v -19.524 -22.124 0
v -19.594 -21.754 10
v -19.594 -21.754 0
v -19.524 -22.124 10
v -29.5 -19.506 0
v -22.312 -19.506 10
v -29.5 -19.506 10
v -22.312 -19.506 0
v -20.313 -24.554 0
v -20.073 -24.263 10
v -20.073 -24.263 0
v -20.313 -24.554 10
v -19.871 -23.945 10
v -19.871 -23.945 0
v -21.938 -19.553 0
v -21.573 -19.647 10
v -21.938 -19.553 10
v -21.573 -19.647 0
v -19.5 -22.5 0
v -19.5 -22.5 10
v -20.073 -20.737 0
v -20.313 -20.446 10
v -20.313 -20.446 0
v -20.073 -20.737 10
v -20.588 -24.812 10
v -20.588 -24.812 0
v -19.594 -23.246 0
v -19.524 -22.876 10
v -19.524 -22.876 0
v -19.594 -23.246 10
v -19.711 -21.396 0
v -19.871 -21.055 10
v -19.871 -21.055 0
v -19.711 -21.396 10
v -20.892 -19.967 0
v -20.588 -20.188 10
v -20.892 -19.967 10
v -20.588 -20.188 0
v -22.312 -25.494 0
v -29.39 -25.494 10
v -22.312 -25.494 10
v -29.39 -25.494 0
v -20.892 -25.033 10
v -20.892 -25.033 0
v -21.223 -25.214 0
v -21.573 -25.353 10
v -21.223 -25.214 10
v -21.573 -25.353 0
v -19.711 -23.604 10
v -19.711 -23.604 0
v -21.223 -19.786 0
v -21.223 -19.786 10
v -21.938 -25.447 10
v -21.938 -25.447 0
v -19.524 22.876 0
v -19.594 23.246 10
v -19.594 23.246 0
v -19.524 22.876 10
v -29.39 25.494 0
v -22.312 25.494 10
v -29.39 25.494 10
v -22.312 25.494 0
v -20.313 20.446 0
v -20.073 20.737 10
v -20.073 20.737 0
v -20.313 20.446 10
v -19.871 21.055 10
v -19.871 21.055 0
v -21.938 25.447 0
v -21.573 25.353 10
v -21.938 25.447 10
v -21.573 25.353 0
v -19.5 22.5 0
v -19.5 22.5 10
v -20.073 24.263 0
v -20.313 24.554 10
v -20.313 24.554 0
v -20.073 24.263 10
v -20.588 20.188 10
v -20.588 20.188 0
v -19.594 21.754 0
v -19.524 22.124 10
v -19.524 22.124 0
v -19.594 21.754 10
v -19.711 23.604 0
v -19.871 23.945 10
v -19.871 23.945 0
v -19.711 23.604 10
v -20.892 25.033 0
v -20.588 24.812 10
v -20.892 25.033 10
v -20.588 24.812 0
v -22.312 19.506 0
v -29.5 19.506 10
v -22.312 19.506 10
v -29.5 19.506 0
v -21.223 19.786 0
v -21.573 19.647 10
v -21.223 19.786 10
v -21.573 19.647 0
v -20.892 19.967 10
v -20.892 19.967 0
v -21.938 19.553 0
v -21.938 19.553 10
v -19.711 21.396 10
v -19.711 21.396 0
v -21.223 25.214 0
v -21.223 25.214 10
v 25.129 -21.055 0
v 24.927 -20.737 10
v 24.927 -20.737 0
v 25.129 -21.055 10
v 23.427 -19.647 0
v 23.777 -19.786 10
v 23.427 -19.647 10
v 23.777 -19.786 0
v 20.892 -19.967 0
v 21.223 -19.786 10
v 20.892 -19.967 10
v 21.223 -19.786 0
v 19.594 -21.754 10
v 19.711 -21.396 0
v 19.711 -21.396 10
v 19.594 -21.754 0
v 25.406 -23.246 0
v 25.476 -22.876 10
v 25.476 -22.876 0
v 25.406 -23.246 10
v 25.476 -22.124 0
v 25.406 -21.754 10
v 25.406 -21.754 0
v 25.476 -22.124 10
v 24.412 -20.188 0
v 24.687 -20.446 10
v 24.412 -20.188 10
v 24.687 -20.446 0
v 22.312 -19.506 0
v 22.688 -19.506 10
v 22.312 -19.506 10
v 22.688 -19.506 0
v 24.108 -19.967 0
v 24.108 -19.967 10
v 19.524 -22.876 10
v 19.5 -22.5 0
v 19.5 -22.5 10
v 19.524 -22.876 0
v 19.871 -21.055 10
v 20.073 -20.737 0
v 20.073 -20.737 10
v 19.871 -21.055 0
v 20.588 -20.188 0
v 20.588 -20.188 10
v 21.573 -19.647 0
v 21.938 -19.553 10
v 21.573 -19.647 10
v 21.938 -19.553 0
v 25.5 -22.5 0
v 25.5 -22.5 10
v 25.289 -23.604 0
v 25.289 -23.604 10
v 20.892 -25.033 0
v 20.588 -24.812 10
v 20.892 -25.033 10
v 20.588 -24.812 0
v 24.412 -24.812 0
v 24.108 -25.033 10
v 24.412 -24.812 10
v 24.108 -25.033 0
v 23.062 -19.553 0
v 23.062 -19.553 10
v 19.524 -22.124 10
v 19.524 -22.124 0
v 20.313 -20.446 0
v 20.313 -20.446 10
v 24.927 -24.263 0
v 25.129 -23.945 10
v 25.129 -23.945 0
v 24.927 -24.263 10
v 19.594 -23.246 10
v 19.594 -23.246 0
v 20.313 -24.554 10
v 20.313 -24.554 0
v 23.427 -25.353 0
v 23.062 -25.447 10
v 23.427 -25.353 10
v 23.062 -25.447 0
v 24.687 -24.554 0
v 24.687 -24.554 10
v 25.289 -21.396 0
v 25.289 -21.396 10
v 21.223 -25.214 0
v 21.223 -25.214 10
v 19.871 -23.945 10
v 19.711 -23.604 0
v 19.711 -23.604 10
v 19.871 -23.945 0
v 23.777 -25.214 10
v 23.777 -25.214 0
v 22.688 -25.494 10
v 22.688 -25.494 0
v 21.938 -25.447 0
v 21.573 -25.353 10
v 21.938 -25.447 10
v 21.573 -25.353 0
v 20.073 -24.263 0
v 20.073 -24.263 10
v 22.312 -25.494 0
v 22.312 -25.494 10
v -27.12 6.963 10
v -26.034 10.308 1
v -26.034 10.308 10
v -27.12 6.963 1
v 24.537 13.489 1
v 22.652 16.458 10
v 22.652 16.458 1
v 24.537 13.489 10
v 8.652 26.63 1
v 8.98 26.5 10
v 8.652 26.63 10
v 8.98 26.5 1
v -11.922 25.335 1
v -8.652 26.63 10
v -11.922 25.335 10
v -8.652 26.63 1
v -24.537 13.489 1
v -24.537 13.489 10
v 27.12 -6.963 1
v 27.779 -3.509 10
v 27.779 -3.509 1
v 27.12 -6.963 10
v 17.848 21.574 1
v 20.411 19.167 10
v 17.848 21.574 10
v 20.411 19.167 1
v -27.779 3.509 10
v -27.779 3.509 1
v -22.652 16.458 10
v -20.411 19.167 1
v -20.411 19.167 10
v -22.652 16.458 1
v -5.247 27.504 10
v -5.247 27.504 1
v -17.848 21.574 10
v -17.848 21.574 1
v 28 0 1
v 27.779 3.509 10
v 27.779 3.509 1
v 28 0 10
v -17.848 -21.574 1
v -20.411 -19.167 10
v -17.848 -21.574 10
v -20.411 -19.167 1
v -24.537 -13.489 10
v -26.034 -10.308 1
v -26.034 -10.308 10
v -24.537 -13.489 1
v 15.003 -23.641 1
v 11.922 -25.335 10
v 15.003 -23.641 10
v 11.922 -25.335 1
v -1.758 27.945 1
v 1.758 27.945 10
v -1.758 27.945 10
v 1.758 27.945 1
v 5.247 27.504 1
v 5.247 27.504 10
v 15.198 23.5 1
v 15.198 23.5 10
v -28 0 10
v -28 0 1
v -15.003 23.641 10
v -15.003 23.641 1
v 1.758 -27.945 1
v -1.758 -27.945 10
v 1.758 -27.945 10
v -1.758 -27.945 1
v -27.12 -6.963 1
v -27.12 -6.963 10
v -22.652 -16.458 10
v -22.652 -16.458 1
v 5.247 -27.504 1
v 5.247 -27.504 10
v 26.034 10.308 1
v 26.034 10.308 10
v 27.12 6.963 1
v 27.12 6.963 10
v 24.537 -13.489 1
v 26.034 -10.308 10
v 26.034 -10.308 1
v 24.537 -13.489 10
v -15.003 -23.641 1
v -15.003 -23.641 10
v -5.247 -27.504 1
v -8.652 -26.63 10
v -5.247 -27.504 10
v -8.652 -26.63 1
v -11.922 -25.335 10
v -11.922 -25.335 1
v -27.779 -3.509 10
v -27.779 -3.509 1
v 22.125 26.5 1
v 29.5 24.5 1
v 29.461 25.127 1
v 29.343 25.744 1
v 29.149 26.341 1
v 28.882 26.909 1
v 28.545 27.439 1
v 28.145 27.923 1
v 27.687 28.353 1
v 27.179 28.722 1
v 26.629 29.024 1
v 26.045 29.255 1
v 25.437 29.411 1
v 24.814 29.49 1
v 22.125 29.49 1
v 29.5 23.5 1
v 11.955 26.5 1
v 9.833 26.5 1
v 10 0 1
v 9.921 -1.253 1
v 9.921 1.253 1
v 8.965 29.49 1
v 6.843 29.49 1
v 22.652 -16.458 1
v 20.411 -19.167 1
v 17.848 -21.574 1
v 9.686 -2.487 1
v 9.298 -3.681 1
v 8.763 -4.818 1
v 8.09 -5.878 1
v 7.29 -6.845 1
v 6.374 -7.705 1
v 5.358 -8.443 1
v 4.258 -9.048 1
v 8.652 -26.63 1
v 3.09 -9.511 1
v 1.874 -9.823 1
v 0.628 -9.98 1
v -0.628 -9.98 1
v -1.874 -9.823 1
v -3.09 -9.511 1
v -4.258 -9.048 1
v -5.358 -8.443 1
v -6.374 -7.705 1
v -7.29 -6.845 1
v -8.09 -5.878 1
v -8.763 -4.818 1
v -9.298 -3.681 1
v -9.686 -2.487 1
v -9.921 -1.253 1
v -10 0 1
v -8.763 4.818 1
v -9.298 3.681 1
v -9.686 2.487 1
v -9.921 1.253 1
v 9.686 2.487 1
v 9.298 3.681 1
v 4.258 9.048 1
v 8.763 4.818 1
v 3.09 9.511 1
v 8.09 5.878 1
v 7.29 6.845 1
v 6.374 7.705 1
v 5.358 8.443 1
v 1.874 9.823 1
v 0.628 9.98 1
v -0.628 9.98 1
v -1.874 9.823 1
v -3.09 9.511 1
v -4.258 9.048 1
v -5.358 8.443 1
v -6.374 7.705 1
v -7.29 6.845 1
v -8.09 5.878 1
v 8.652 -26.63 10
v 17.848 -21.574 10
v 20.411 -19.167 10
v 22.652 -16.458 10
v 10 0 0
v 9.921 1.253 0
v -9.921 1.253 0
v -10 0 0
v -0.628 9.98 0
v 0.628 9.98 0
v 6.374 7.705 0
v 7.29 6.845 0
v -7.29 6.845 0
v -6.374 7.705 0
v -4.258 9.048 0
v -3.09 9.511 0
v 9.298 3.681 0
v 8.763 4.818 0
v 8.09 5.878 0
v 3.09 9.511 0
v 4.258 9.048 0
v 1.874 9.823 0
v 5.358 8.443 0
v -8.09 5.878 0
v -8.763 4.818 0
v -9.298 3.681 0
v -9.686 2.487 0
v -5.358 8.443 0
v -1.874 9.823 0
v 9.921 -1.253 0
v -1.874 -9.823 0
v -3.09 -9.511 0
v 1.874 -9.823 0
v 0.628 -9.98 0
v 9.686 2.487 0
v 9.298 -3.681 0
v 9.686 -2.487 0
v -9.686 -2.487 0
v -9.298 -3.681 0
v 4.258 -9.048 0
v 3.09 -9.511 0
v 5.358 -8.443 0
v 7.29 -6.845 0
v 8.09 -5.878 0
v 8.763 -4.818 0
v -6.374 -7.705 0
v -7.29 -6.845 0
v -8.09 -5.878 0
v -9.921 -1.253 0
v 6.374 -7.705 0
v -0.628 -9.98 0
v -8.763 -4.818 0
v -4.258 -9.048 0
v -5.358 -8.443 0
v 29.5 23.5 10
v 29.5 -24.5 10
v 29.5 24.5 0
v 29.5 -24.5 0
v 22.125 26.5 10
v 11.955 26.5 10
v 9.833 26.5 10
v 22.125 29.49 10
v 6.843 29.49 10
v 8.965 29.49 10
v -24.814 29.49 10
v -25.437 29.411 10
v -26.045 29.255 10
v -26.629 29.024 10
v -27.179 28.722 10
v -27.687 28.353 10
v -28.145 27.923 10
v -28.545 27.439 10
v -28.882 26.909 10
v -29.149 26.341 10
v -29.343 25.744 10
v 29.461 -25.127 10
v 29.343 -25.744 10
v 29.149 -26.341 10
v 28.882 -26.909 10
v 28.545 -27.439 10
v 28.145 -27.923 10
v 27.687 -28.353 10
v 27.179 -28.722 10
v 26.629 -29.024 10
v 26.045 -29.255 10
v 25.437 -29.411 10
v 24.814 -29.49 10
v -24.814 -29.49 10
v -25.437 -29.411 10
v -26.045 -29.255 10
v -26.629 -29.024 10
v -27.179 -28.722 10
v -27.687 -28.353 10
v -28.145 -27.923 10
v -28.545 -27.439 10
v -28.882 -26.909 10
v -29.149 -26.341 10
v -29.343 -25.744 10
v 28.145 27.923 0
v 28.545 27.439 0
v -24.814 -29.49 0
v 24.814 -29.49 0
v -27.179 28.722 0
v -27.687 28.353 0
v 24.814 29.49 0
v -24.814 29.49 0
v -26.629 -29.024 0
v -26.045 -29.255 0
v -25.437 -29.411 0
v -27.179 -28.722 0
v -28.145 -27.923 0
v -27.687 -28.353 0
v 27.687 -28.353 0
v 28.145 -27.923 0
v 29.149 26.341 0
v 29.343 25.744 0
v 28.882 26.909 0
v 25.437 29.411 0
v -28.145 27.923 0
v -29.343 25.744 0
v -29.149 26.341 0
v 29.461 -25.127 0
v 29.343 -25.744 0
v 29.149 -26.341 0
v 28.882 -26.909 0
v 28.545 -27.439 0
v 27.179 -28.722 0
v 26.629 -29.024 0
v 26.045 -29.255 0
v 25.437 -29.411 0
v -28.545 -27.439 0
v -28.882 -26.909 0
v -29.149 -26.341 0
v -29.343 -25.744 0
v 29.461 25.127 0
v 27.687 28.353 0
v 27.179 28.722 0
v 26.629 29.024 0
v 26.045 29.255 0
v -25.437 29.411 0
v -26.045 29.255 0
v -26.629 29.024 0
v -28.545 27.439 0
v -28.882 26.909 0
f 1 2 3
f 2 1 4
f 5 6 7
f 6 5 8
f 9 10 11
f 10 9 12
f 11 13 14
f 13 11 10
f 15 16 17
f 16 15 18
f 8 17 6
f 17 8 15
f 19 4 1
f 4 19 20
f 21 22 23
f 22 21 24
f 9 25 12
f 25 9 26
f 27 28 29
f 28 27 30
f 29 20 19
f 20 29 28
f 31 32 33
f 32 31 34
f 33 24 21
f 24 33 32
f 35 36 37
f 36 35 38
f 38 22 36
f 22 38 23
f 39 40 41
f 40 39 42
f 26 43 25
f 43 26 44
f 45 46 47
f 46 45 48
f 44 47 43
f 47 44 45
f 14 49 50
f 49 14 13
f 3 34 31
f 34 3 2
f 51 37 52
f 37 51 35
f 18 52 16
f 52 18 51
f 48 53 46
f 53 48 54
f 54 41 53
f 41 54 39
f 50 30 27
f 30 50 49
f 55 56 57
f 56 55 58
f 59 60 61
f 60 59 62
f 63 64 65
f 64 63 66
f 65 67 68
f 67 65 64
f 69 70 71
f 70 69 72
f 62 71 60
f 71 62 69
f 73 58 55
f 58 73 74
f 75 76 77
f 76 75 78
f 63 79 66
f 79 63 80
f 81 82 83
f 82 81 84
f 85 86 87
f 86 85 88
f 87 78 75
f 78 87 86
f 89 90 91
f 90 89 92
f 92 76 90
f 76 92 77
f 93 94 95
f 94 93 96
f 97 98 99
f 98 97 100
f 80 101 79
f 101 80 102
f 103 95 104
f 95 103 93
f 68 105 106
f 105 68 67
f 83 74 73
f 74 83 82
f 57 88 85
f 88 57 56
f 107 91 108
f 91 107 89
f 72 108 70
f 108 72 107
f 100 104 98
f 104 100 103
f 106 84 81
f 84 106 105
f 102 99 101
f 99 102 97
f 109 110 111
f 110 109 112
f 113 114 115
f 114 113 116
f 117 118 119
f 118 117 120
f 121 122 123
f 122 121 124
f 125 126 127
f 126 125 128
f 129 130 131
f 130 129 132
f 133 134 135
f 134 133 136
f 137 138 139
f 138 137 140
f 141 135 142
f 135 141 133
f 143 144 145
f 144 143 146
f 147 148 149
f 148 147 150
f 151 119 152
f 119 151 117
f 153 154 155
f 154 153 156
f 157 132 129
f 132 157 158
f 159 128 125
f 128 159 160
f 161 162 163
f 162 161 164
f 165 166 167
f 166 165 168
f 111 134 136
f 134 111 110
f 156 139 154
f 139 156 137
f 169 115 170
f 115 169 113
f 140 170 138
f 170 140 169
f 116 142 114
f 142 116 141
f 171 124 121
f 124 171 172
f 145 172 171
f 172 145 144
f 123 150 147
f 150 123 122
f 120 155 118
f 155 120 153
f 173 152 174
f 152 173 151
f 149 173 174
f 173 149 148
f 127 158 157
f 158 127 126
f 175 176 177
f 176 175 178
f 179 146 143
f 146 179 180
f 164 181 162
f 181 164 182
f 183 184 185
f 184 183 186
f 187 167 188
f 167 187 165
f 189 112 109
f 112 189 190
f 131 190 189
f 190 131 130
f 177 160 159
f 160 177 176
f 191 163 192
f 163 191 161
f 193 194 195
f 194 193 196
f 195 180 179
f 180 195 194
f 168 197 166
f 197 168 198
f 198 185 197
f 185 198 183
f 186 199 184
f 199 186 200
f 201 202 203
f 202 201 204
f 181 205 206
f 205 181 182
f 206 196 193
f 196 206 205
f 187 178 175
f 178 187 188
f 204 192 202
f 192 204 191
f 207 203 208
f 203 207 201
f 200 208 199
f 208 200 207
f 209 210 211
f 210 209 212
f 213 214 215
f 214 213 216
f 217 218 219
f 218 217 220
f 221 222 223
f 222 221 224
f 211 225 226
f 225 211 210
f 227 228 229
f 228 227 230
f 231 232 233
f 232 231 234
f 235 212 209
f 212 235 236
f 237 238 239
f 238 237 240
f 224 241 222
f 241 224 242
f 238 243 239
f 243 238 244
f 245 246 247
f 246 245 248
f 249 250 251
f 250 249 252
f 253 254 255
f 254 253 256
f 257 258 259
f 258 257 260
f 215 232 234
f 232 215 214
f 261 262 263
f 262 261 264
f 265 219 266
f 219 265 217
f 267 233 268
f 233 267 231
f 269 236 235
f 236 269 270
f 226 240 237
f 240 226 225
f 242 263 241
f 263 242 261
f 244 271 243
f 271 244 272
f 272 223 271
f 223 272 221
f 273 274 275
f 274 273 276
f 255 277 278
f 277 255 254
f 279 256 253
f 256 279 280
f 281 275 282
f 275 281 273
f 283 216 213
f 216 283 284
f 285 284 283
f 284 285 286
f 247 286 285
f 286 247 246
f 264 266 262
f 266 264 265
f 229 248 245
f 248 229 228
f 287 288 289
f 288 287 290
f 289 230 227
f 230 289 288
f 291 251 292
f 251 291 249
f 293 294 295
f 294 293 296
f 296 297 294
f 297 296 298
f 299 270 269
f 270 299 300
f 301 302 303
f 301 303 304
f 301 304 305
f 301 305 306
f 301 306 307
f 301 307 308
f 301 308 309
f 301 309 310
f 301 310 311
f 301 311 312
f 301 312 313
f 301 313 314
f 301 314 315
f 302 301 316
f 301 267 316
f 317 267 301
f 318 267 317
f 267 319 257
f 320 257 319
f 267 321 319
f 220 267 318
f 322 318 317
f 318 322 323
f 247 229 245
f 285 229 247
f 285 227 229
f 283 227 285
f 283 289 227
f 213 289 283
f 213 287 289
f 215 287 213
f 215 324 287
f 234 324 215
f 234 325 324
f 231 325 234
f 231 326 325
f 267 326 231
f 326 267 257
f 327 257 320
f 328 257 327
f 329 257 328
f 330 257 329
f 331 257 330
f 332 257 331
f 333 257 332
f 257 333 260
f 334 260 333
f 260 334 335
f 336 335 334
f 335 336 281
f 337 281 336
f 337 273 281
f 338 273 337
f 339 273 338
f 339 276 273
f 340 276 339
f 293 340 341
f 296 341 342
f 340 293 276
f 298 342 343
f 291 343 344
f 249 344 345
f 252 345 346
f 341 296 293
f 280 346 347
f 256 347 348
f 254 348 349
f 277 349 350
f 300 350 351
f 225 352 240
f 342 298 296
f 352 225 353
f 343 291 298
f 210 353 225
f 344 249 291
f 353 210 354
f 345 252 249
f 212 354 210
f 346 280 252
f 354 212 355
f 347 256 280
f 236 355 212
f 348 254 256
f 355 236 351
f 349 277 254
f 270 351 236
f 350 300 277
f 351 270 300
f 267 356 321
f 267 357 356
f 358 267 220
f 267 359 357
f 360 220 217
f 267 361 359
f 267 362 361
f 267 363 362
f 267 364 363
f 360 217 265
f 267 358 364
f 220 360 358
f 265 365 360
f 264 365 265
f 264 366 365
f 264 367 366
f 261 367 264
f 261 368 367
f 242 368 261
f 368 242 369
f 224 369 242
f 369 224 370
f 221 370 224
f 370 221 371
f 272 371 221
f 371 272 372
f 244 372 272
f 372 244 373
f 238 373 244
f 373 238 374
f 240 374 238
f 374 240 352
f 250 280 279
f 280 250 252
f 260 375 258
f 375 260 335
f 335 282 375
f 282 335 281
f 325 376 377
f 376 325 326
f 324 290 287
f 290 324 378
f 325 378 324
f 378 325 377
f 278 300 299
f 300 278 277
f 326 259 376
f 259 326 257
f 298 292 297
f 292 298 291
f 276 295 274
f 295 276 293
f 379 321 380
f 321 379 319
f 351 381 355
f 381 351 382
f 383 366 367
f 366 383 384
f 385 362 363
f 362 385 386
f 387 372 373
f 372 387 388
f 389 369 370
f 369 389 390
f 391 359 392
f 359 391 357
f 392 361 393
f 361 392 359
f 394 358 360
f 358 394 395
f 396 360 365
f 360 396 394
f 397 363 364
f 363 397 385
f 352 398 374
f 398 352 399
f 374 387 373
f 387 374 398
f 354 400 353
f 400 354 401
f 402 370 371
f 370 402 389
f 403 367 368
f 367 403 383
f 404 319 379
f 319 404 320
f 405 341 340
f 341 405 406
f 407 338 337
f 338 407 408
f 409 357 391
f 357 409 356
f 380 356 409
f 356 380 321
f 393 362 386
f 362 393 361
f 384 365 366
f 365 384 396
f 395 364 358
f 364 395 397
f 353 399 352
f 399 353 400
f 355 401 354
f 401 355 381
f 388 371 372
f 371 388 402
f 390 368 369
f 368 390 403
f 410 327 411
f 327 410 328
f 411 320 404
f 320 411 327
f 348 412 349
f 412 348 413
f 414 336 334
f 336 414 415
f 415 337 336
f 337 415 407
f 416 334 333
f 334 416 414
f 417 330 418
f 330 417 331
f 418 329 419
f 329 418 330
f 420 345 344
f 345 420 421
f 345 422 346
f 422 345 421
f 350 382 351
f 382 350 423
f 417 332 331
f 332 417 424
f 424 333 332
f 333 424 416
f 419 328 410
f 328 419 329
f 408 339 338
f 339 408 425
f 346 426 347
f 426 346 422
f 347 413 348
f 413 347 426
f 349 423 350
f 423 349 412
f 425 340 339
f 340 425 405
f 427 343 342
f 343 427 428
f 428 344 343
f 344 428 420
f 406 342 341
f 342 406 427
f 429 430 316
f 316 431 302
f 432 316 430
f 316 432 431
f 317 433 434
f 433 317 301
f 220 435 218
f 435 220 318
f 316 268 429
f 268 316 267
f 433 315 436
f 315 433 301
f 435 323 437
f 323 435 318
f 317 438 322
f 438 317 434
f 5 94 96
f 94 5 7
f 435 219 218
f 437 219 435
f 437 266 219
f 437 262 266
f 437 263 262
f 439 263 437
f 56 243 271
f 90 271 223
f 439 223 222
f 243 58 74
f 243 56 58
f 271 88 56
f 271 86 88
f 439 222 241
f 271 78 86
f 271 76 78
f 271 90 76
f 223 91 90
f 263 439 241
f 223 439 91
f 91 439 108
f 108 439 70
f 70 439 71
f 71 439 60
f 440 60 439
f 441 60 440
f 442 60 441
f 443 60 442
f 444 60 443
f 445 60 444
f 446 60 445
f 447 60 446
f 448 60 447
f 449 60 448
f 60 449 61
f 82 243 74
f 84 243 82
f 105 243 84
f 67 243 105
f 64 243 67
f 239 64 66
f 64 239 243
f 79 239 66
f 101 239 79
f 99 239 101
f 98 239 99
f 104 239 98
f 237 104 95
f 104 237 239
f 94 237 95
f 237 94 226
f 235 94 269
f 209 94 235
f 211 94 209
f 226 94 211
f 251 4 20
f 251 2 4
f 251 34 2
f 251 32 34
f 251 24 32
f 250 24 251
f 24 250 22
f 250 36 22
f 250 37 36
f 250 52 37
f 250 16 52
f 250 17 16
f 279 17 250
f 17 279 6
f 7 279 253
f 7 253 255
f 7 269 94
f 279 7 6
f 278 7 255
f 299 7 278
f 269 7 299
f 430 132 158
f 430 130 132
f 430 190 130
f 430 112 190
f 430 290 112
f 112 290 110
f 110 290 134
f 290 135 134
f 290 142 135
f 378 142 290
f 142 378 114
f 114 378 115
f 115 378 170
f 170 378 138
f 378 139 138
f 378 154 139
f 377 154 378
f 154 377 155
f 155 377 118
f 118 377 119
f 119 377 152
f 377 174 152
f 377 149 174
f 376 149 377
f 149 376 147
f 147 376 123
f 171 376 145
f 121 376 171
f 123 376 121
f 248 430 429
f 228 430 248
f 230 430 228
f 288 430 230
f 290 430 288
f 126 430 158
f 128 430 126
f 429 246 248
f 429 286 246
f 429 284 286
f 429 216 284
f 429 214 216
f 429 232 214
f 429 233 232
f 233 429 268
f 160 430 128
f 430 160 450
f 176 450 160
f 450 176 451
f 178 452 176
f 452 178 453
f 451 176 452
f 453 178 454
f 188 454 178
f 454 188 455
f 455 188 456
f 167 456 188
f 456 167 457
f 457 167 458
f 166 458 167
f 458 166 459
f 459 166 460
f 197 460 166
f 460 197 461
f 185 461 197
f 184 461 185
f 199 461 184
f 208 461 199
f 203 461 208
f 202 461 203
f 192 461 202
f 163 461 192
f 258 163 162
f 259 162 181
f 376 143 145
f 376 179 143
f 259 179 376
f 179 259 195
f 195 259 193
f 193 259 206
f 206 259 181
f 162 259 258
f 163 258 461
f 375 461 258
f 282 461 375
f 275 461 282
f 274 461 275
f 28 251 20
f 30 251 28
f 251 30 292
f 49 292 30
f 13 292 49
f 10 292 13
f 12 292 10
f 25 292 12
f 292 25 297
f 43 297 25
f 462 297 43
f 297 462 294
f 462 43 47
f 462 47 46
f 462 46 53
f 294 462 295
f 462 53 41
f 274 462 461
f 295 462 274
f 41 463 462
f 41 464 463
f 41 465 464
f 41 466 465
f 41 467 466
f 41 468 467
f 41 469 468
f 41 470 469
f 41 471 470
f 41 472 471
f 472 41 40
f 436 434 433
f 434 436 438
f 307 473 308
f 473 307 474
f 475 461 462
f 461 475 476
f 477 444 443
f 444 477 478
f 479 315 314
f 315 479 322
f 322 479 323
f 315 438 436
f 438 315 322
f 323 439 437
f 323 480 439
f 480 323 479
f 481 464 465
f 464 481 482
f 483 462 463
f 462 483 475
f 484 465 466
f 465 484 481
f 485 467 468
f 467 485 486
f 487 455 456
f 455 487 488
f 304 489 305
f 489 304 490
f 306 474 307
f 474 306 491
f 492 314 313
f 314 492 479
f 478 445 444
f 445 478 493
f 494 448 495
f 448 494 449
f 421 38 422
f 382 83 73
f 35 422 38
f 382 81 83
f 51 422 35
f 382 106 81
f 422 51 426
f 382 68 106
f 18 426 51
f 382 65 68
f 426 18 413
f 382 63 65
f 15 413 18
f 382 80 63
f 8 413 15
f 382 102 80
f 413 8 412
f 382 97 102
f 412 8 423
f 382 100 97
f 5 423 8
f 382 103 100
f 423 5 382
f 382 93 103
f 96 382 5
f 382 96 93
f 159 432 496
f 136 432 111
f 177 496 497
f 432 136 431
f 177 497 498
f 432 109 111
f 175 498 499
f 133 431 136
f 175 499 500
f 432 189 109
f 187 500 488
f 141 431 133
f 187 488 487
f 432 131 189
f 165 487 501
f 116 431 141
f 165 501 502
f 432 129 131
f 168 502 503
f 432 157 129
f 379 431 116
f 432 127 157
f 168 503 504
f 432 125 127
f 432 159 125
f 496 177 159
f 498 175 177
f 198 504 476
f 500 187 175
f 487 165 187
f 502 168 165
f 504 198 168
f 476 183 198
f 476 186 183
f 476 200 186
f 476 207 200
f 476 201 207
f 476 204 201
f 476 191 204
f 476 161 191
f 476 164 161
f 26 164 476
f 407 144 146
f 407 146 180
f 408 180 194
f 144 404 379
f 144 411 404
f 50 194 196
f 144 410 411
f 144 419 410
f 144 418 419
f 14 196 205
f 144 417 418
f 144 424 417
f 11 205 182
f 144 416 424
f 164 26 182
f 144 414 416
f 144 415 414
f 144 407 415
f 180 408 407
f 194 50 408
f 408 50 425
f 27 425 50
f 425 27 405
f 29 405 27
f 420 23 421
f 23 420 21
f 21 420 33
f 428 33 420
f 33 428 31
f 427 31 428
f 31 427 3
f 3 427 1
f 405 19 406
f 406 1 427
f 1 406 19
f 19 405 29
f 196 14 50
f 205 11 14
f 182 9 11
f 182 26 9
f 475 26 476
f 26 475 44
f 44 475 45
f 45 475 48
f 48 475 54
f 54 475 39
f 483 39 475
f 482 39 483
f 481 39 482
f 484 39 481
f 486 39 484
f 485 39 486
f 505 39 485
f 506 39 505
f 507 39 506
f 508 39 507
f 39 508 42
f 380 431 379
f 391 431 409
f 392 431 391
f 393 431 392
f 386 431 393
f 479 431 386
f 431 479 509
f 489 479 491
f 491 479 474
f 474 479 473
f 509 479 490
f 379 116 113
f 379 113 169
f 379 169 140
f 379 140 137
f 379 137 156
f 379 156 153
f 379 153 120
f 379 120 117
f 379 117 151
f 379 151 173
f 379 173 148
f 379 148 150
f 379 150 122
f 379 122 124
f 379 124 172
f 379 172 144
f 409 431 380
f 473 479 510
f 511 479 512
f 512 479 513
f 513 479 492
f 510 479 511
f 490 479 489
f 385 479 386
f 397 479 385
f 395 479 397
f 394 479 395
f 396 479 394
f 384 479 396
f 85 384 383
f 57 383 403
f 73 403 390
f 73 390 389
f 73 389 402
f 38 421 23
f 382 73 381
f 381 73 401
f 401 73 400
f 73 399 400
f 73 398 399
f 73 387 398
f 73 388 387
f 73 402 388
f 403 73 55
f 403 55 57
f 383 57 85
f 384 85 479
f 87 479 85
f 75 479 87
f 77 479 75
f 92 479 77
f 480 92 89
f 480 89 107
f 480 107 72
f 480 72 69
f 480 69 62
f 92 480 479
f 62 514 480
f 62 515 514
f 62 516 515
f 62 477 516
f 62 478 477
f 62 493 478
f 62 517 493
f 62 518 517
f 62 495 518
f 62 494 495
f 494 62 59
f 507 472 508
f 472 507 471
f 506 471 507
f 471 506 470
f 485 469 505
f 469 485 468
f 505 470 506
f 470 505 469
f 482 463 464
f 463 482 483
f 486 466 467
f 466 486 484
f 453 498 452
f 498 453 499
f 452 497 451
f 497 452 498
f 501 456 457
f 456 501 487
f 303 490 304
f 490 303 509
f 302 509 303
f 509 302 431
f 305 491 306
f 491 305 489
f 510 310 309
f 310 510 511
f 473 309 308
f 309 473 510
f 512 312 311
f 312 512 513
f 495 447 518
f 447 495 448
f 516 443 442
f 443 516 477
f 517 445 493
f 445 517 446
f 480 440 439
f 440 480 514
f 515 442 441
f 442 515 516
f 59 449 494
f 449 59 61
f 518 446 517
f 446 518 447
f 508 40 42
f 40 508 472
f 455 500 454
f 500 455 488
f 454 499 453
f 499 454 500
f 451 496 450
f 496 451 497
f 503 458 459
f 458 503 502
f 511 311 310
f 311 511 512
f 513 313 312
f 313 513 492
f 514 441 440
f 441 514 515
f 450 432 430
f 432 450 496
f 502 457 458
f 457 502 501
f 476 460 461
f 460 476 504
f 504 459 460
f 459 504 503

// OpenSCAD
$fn = 50;


difference() {
	union() {
		translate(v = [0, 0, 0]) {
			rotate(a = [0, 0, 0]) {
				hull() {
					translate(v = [-24.5000000000, 24.5000000000, 0]) {
						rotate(a = [0, 0, 0]) {
							translate(v = [0, 0, 0]) {
								rotate(a = [0, 0, 0]) {
									cylinder(h = 10, r = 5);
								}
							}
						}
					}
					translate(v = [24.5000000000, 24.5000000000, 0]) {
						rotate(a = [0, 0, 0]) {
							translate(v = [0, 0, 0]) {
								rotate(a = [0, 0, 0]) {
									cylinder(h = 10, r = 5);
								}
							}
						}
					}
					translate(v = [-24.5000000000, -24.5000000000, 0]) {
						rotate(a = [0, 0, 0]) {
							translate(v = [0, 0, 0]) {
								rotate(a = [0, 0, 0]) {
									cylinder(h = 10, r = 5);
								}
							}
						}
					}
					translate(v = [24.5000000000, -24.5000000000, 0]) {
						rotate(a = [0, 0, 0]) {
							translate(v = [0, 0, 0]) {
								rotate(a = [0, 0, 0]) {
									cylinder(h = 10, r = 5);
								}
							}
						}
					}
				}
			}
		}
	}
	union() {
		translate(v = [-30.0000000000, -22.5000000000, -125]) {
			rotate(a = [0, 0, 0]) {
				hull() {
					translate(v = [7.5000000000, 0, 0]) {
						rotate(a = [0, 0, 0]) {
							translate(v = [0, 0, 0]) {
								rotate(a = [0, 0, 0]) {
									cylinder(h = 250, r = 3.0000000000);
								}
							}
						}
					}
					translate(v = [-7.5000000000, 0, 0]) {
						rotate(a = [0, 0, 0]) {
							translate(v = [0, 0, 0]) {
								rotate(a = [0, 0, 0]) {
									cylinder(h = 250, r = 3.0000000000);
								}
							}
						}
					}
				}
			}
		}
		translate(v = [-30.0000000000, 22.5000000000, -125]) {
			rotate(a = [0, 0, 0]) {
				hull() {
					translate(v = [7.5000000000, 0, 0]) {
						rotate(a = [0, 0, 0]) {
							translate(v = [0, 0, 0]) {
								rotate(a = [0, 0, 0]) {
									cylinder(h = 250, r = 3.0000000000);
								}
							}
						}
					}
					translate(v = [-7.5000000000, 0, 0]) {
						rotate(a = [0, 0, 0]) {
							translate(v = [0, 0, 0]) {
								rotate(a = [0, 0, 0]) {
									cylinder(h = 250, r = 3.0000000000);
								}
							}
						}
					}
				}
			}
		}
		translate(v = [22.5000000000, -22.5000000000, -125.0000000000]) {
			rotate(a = [0, 0, 0]) {
				cylinder(h = 250, r = 3.0000000000);
			}
		}
		translate(v = [0, 0, 1.0000000000]) {
			rotate(a = [0, 0, 0]) {
				cylinder(h = 12, r = 28.0000000000);
			}
		}
		translate(v = [0, 0, -5.0000000000]) {
			rotate(a = [0, 0, 0]) {
				cylinder(h = 10, r = 10.0000000000);
			}
		}
		translate(v = [0.0000000000, 23.5000000000, 1]) {
			rotate(a = [0, 0, 0]) {
				cube(size = [29.5000000000, 3, 12]);
			}
		}
		translate(v = [22.1250000000, 23.5000000000, 1]) {
			rotate(a = [0, 0, 0]) {
				cube(size = [7.3750000000, 6, 12]);
			}
		}
		translate(v = [6.0833333333, 30.2500000000, 1]) {
			rotate(a = [0, 0, -45]) {
				cube(size = [7.5000000000, 1.5000000000, 12]);
			}
		}
	}
}
